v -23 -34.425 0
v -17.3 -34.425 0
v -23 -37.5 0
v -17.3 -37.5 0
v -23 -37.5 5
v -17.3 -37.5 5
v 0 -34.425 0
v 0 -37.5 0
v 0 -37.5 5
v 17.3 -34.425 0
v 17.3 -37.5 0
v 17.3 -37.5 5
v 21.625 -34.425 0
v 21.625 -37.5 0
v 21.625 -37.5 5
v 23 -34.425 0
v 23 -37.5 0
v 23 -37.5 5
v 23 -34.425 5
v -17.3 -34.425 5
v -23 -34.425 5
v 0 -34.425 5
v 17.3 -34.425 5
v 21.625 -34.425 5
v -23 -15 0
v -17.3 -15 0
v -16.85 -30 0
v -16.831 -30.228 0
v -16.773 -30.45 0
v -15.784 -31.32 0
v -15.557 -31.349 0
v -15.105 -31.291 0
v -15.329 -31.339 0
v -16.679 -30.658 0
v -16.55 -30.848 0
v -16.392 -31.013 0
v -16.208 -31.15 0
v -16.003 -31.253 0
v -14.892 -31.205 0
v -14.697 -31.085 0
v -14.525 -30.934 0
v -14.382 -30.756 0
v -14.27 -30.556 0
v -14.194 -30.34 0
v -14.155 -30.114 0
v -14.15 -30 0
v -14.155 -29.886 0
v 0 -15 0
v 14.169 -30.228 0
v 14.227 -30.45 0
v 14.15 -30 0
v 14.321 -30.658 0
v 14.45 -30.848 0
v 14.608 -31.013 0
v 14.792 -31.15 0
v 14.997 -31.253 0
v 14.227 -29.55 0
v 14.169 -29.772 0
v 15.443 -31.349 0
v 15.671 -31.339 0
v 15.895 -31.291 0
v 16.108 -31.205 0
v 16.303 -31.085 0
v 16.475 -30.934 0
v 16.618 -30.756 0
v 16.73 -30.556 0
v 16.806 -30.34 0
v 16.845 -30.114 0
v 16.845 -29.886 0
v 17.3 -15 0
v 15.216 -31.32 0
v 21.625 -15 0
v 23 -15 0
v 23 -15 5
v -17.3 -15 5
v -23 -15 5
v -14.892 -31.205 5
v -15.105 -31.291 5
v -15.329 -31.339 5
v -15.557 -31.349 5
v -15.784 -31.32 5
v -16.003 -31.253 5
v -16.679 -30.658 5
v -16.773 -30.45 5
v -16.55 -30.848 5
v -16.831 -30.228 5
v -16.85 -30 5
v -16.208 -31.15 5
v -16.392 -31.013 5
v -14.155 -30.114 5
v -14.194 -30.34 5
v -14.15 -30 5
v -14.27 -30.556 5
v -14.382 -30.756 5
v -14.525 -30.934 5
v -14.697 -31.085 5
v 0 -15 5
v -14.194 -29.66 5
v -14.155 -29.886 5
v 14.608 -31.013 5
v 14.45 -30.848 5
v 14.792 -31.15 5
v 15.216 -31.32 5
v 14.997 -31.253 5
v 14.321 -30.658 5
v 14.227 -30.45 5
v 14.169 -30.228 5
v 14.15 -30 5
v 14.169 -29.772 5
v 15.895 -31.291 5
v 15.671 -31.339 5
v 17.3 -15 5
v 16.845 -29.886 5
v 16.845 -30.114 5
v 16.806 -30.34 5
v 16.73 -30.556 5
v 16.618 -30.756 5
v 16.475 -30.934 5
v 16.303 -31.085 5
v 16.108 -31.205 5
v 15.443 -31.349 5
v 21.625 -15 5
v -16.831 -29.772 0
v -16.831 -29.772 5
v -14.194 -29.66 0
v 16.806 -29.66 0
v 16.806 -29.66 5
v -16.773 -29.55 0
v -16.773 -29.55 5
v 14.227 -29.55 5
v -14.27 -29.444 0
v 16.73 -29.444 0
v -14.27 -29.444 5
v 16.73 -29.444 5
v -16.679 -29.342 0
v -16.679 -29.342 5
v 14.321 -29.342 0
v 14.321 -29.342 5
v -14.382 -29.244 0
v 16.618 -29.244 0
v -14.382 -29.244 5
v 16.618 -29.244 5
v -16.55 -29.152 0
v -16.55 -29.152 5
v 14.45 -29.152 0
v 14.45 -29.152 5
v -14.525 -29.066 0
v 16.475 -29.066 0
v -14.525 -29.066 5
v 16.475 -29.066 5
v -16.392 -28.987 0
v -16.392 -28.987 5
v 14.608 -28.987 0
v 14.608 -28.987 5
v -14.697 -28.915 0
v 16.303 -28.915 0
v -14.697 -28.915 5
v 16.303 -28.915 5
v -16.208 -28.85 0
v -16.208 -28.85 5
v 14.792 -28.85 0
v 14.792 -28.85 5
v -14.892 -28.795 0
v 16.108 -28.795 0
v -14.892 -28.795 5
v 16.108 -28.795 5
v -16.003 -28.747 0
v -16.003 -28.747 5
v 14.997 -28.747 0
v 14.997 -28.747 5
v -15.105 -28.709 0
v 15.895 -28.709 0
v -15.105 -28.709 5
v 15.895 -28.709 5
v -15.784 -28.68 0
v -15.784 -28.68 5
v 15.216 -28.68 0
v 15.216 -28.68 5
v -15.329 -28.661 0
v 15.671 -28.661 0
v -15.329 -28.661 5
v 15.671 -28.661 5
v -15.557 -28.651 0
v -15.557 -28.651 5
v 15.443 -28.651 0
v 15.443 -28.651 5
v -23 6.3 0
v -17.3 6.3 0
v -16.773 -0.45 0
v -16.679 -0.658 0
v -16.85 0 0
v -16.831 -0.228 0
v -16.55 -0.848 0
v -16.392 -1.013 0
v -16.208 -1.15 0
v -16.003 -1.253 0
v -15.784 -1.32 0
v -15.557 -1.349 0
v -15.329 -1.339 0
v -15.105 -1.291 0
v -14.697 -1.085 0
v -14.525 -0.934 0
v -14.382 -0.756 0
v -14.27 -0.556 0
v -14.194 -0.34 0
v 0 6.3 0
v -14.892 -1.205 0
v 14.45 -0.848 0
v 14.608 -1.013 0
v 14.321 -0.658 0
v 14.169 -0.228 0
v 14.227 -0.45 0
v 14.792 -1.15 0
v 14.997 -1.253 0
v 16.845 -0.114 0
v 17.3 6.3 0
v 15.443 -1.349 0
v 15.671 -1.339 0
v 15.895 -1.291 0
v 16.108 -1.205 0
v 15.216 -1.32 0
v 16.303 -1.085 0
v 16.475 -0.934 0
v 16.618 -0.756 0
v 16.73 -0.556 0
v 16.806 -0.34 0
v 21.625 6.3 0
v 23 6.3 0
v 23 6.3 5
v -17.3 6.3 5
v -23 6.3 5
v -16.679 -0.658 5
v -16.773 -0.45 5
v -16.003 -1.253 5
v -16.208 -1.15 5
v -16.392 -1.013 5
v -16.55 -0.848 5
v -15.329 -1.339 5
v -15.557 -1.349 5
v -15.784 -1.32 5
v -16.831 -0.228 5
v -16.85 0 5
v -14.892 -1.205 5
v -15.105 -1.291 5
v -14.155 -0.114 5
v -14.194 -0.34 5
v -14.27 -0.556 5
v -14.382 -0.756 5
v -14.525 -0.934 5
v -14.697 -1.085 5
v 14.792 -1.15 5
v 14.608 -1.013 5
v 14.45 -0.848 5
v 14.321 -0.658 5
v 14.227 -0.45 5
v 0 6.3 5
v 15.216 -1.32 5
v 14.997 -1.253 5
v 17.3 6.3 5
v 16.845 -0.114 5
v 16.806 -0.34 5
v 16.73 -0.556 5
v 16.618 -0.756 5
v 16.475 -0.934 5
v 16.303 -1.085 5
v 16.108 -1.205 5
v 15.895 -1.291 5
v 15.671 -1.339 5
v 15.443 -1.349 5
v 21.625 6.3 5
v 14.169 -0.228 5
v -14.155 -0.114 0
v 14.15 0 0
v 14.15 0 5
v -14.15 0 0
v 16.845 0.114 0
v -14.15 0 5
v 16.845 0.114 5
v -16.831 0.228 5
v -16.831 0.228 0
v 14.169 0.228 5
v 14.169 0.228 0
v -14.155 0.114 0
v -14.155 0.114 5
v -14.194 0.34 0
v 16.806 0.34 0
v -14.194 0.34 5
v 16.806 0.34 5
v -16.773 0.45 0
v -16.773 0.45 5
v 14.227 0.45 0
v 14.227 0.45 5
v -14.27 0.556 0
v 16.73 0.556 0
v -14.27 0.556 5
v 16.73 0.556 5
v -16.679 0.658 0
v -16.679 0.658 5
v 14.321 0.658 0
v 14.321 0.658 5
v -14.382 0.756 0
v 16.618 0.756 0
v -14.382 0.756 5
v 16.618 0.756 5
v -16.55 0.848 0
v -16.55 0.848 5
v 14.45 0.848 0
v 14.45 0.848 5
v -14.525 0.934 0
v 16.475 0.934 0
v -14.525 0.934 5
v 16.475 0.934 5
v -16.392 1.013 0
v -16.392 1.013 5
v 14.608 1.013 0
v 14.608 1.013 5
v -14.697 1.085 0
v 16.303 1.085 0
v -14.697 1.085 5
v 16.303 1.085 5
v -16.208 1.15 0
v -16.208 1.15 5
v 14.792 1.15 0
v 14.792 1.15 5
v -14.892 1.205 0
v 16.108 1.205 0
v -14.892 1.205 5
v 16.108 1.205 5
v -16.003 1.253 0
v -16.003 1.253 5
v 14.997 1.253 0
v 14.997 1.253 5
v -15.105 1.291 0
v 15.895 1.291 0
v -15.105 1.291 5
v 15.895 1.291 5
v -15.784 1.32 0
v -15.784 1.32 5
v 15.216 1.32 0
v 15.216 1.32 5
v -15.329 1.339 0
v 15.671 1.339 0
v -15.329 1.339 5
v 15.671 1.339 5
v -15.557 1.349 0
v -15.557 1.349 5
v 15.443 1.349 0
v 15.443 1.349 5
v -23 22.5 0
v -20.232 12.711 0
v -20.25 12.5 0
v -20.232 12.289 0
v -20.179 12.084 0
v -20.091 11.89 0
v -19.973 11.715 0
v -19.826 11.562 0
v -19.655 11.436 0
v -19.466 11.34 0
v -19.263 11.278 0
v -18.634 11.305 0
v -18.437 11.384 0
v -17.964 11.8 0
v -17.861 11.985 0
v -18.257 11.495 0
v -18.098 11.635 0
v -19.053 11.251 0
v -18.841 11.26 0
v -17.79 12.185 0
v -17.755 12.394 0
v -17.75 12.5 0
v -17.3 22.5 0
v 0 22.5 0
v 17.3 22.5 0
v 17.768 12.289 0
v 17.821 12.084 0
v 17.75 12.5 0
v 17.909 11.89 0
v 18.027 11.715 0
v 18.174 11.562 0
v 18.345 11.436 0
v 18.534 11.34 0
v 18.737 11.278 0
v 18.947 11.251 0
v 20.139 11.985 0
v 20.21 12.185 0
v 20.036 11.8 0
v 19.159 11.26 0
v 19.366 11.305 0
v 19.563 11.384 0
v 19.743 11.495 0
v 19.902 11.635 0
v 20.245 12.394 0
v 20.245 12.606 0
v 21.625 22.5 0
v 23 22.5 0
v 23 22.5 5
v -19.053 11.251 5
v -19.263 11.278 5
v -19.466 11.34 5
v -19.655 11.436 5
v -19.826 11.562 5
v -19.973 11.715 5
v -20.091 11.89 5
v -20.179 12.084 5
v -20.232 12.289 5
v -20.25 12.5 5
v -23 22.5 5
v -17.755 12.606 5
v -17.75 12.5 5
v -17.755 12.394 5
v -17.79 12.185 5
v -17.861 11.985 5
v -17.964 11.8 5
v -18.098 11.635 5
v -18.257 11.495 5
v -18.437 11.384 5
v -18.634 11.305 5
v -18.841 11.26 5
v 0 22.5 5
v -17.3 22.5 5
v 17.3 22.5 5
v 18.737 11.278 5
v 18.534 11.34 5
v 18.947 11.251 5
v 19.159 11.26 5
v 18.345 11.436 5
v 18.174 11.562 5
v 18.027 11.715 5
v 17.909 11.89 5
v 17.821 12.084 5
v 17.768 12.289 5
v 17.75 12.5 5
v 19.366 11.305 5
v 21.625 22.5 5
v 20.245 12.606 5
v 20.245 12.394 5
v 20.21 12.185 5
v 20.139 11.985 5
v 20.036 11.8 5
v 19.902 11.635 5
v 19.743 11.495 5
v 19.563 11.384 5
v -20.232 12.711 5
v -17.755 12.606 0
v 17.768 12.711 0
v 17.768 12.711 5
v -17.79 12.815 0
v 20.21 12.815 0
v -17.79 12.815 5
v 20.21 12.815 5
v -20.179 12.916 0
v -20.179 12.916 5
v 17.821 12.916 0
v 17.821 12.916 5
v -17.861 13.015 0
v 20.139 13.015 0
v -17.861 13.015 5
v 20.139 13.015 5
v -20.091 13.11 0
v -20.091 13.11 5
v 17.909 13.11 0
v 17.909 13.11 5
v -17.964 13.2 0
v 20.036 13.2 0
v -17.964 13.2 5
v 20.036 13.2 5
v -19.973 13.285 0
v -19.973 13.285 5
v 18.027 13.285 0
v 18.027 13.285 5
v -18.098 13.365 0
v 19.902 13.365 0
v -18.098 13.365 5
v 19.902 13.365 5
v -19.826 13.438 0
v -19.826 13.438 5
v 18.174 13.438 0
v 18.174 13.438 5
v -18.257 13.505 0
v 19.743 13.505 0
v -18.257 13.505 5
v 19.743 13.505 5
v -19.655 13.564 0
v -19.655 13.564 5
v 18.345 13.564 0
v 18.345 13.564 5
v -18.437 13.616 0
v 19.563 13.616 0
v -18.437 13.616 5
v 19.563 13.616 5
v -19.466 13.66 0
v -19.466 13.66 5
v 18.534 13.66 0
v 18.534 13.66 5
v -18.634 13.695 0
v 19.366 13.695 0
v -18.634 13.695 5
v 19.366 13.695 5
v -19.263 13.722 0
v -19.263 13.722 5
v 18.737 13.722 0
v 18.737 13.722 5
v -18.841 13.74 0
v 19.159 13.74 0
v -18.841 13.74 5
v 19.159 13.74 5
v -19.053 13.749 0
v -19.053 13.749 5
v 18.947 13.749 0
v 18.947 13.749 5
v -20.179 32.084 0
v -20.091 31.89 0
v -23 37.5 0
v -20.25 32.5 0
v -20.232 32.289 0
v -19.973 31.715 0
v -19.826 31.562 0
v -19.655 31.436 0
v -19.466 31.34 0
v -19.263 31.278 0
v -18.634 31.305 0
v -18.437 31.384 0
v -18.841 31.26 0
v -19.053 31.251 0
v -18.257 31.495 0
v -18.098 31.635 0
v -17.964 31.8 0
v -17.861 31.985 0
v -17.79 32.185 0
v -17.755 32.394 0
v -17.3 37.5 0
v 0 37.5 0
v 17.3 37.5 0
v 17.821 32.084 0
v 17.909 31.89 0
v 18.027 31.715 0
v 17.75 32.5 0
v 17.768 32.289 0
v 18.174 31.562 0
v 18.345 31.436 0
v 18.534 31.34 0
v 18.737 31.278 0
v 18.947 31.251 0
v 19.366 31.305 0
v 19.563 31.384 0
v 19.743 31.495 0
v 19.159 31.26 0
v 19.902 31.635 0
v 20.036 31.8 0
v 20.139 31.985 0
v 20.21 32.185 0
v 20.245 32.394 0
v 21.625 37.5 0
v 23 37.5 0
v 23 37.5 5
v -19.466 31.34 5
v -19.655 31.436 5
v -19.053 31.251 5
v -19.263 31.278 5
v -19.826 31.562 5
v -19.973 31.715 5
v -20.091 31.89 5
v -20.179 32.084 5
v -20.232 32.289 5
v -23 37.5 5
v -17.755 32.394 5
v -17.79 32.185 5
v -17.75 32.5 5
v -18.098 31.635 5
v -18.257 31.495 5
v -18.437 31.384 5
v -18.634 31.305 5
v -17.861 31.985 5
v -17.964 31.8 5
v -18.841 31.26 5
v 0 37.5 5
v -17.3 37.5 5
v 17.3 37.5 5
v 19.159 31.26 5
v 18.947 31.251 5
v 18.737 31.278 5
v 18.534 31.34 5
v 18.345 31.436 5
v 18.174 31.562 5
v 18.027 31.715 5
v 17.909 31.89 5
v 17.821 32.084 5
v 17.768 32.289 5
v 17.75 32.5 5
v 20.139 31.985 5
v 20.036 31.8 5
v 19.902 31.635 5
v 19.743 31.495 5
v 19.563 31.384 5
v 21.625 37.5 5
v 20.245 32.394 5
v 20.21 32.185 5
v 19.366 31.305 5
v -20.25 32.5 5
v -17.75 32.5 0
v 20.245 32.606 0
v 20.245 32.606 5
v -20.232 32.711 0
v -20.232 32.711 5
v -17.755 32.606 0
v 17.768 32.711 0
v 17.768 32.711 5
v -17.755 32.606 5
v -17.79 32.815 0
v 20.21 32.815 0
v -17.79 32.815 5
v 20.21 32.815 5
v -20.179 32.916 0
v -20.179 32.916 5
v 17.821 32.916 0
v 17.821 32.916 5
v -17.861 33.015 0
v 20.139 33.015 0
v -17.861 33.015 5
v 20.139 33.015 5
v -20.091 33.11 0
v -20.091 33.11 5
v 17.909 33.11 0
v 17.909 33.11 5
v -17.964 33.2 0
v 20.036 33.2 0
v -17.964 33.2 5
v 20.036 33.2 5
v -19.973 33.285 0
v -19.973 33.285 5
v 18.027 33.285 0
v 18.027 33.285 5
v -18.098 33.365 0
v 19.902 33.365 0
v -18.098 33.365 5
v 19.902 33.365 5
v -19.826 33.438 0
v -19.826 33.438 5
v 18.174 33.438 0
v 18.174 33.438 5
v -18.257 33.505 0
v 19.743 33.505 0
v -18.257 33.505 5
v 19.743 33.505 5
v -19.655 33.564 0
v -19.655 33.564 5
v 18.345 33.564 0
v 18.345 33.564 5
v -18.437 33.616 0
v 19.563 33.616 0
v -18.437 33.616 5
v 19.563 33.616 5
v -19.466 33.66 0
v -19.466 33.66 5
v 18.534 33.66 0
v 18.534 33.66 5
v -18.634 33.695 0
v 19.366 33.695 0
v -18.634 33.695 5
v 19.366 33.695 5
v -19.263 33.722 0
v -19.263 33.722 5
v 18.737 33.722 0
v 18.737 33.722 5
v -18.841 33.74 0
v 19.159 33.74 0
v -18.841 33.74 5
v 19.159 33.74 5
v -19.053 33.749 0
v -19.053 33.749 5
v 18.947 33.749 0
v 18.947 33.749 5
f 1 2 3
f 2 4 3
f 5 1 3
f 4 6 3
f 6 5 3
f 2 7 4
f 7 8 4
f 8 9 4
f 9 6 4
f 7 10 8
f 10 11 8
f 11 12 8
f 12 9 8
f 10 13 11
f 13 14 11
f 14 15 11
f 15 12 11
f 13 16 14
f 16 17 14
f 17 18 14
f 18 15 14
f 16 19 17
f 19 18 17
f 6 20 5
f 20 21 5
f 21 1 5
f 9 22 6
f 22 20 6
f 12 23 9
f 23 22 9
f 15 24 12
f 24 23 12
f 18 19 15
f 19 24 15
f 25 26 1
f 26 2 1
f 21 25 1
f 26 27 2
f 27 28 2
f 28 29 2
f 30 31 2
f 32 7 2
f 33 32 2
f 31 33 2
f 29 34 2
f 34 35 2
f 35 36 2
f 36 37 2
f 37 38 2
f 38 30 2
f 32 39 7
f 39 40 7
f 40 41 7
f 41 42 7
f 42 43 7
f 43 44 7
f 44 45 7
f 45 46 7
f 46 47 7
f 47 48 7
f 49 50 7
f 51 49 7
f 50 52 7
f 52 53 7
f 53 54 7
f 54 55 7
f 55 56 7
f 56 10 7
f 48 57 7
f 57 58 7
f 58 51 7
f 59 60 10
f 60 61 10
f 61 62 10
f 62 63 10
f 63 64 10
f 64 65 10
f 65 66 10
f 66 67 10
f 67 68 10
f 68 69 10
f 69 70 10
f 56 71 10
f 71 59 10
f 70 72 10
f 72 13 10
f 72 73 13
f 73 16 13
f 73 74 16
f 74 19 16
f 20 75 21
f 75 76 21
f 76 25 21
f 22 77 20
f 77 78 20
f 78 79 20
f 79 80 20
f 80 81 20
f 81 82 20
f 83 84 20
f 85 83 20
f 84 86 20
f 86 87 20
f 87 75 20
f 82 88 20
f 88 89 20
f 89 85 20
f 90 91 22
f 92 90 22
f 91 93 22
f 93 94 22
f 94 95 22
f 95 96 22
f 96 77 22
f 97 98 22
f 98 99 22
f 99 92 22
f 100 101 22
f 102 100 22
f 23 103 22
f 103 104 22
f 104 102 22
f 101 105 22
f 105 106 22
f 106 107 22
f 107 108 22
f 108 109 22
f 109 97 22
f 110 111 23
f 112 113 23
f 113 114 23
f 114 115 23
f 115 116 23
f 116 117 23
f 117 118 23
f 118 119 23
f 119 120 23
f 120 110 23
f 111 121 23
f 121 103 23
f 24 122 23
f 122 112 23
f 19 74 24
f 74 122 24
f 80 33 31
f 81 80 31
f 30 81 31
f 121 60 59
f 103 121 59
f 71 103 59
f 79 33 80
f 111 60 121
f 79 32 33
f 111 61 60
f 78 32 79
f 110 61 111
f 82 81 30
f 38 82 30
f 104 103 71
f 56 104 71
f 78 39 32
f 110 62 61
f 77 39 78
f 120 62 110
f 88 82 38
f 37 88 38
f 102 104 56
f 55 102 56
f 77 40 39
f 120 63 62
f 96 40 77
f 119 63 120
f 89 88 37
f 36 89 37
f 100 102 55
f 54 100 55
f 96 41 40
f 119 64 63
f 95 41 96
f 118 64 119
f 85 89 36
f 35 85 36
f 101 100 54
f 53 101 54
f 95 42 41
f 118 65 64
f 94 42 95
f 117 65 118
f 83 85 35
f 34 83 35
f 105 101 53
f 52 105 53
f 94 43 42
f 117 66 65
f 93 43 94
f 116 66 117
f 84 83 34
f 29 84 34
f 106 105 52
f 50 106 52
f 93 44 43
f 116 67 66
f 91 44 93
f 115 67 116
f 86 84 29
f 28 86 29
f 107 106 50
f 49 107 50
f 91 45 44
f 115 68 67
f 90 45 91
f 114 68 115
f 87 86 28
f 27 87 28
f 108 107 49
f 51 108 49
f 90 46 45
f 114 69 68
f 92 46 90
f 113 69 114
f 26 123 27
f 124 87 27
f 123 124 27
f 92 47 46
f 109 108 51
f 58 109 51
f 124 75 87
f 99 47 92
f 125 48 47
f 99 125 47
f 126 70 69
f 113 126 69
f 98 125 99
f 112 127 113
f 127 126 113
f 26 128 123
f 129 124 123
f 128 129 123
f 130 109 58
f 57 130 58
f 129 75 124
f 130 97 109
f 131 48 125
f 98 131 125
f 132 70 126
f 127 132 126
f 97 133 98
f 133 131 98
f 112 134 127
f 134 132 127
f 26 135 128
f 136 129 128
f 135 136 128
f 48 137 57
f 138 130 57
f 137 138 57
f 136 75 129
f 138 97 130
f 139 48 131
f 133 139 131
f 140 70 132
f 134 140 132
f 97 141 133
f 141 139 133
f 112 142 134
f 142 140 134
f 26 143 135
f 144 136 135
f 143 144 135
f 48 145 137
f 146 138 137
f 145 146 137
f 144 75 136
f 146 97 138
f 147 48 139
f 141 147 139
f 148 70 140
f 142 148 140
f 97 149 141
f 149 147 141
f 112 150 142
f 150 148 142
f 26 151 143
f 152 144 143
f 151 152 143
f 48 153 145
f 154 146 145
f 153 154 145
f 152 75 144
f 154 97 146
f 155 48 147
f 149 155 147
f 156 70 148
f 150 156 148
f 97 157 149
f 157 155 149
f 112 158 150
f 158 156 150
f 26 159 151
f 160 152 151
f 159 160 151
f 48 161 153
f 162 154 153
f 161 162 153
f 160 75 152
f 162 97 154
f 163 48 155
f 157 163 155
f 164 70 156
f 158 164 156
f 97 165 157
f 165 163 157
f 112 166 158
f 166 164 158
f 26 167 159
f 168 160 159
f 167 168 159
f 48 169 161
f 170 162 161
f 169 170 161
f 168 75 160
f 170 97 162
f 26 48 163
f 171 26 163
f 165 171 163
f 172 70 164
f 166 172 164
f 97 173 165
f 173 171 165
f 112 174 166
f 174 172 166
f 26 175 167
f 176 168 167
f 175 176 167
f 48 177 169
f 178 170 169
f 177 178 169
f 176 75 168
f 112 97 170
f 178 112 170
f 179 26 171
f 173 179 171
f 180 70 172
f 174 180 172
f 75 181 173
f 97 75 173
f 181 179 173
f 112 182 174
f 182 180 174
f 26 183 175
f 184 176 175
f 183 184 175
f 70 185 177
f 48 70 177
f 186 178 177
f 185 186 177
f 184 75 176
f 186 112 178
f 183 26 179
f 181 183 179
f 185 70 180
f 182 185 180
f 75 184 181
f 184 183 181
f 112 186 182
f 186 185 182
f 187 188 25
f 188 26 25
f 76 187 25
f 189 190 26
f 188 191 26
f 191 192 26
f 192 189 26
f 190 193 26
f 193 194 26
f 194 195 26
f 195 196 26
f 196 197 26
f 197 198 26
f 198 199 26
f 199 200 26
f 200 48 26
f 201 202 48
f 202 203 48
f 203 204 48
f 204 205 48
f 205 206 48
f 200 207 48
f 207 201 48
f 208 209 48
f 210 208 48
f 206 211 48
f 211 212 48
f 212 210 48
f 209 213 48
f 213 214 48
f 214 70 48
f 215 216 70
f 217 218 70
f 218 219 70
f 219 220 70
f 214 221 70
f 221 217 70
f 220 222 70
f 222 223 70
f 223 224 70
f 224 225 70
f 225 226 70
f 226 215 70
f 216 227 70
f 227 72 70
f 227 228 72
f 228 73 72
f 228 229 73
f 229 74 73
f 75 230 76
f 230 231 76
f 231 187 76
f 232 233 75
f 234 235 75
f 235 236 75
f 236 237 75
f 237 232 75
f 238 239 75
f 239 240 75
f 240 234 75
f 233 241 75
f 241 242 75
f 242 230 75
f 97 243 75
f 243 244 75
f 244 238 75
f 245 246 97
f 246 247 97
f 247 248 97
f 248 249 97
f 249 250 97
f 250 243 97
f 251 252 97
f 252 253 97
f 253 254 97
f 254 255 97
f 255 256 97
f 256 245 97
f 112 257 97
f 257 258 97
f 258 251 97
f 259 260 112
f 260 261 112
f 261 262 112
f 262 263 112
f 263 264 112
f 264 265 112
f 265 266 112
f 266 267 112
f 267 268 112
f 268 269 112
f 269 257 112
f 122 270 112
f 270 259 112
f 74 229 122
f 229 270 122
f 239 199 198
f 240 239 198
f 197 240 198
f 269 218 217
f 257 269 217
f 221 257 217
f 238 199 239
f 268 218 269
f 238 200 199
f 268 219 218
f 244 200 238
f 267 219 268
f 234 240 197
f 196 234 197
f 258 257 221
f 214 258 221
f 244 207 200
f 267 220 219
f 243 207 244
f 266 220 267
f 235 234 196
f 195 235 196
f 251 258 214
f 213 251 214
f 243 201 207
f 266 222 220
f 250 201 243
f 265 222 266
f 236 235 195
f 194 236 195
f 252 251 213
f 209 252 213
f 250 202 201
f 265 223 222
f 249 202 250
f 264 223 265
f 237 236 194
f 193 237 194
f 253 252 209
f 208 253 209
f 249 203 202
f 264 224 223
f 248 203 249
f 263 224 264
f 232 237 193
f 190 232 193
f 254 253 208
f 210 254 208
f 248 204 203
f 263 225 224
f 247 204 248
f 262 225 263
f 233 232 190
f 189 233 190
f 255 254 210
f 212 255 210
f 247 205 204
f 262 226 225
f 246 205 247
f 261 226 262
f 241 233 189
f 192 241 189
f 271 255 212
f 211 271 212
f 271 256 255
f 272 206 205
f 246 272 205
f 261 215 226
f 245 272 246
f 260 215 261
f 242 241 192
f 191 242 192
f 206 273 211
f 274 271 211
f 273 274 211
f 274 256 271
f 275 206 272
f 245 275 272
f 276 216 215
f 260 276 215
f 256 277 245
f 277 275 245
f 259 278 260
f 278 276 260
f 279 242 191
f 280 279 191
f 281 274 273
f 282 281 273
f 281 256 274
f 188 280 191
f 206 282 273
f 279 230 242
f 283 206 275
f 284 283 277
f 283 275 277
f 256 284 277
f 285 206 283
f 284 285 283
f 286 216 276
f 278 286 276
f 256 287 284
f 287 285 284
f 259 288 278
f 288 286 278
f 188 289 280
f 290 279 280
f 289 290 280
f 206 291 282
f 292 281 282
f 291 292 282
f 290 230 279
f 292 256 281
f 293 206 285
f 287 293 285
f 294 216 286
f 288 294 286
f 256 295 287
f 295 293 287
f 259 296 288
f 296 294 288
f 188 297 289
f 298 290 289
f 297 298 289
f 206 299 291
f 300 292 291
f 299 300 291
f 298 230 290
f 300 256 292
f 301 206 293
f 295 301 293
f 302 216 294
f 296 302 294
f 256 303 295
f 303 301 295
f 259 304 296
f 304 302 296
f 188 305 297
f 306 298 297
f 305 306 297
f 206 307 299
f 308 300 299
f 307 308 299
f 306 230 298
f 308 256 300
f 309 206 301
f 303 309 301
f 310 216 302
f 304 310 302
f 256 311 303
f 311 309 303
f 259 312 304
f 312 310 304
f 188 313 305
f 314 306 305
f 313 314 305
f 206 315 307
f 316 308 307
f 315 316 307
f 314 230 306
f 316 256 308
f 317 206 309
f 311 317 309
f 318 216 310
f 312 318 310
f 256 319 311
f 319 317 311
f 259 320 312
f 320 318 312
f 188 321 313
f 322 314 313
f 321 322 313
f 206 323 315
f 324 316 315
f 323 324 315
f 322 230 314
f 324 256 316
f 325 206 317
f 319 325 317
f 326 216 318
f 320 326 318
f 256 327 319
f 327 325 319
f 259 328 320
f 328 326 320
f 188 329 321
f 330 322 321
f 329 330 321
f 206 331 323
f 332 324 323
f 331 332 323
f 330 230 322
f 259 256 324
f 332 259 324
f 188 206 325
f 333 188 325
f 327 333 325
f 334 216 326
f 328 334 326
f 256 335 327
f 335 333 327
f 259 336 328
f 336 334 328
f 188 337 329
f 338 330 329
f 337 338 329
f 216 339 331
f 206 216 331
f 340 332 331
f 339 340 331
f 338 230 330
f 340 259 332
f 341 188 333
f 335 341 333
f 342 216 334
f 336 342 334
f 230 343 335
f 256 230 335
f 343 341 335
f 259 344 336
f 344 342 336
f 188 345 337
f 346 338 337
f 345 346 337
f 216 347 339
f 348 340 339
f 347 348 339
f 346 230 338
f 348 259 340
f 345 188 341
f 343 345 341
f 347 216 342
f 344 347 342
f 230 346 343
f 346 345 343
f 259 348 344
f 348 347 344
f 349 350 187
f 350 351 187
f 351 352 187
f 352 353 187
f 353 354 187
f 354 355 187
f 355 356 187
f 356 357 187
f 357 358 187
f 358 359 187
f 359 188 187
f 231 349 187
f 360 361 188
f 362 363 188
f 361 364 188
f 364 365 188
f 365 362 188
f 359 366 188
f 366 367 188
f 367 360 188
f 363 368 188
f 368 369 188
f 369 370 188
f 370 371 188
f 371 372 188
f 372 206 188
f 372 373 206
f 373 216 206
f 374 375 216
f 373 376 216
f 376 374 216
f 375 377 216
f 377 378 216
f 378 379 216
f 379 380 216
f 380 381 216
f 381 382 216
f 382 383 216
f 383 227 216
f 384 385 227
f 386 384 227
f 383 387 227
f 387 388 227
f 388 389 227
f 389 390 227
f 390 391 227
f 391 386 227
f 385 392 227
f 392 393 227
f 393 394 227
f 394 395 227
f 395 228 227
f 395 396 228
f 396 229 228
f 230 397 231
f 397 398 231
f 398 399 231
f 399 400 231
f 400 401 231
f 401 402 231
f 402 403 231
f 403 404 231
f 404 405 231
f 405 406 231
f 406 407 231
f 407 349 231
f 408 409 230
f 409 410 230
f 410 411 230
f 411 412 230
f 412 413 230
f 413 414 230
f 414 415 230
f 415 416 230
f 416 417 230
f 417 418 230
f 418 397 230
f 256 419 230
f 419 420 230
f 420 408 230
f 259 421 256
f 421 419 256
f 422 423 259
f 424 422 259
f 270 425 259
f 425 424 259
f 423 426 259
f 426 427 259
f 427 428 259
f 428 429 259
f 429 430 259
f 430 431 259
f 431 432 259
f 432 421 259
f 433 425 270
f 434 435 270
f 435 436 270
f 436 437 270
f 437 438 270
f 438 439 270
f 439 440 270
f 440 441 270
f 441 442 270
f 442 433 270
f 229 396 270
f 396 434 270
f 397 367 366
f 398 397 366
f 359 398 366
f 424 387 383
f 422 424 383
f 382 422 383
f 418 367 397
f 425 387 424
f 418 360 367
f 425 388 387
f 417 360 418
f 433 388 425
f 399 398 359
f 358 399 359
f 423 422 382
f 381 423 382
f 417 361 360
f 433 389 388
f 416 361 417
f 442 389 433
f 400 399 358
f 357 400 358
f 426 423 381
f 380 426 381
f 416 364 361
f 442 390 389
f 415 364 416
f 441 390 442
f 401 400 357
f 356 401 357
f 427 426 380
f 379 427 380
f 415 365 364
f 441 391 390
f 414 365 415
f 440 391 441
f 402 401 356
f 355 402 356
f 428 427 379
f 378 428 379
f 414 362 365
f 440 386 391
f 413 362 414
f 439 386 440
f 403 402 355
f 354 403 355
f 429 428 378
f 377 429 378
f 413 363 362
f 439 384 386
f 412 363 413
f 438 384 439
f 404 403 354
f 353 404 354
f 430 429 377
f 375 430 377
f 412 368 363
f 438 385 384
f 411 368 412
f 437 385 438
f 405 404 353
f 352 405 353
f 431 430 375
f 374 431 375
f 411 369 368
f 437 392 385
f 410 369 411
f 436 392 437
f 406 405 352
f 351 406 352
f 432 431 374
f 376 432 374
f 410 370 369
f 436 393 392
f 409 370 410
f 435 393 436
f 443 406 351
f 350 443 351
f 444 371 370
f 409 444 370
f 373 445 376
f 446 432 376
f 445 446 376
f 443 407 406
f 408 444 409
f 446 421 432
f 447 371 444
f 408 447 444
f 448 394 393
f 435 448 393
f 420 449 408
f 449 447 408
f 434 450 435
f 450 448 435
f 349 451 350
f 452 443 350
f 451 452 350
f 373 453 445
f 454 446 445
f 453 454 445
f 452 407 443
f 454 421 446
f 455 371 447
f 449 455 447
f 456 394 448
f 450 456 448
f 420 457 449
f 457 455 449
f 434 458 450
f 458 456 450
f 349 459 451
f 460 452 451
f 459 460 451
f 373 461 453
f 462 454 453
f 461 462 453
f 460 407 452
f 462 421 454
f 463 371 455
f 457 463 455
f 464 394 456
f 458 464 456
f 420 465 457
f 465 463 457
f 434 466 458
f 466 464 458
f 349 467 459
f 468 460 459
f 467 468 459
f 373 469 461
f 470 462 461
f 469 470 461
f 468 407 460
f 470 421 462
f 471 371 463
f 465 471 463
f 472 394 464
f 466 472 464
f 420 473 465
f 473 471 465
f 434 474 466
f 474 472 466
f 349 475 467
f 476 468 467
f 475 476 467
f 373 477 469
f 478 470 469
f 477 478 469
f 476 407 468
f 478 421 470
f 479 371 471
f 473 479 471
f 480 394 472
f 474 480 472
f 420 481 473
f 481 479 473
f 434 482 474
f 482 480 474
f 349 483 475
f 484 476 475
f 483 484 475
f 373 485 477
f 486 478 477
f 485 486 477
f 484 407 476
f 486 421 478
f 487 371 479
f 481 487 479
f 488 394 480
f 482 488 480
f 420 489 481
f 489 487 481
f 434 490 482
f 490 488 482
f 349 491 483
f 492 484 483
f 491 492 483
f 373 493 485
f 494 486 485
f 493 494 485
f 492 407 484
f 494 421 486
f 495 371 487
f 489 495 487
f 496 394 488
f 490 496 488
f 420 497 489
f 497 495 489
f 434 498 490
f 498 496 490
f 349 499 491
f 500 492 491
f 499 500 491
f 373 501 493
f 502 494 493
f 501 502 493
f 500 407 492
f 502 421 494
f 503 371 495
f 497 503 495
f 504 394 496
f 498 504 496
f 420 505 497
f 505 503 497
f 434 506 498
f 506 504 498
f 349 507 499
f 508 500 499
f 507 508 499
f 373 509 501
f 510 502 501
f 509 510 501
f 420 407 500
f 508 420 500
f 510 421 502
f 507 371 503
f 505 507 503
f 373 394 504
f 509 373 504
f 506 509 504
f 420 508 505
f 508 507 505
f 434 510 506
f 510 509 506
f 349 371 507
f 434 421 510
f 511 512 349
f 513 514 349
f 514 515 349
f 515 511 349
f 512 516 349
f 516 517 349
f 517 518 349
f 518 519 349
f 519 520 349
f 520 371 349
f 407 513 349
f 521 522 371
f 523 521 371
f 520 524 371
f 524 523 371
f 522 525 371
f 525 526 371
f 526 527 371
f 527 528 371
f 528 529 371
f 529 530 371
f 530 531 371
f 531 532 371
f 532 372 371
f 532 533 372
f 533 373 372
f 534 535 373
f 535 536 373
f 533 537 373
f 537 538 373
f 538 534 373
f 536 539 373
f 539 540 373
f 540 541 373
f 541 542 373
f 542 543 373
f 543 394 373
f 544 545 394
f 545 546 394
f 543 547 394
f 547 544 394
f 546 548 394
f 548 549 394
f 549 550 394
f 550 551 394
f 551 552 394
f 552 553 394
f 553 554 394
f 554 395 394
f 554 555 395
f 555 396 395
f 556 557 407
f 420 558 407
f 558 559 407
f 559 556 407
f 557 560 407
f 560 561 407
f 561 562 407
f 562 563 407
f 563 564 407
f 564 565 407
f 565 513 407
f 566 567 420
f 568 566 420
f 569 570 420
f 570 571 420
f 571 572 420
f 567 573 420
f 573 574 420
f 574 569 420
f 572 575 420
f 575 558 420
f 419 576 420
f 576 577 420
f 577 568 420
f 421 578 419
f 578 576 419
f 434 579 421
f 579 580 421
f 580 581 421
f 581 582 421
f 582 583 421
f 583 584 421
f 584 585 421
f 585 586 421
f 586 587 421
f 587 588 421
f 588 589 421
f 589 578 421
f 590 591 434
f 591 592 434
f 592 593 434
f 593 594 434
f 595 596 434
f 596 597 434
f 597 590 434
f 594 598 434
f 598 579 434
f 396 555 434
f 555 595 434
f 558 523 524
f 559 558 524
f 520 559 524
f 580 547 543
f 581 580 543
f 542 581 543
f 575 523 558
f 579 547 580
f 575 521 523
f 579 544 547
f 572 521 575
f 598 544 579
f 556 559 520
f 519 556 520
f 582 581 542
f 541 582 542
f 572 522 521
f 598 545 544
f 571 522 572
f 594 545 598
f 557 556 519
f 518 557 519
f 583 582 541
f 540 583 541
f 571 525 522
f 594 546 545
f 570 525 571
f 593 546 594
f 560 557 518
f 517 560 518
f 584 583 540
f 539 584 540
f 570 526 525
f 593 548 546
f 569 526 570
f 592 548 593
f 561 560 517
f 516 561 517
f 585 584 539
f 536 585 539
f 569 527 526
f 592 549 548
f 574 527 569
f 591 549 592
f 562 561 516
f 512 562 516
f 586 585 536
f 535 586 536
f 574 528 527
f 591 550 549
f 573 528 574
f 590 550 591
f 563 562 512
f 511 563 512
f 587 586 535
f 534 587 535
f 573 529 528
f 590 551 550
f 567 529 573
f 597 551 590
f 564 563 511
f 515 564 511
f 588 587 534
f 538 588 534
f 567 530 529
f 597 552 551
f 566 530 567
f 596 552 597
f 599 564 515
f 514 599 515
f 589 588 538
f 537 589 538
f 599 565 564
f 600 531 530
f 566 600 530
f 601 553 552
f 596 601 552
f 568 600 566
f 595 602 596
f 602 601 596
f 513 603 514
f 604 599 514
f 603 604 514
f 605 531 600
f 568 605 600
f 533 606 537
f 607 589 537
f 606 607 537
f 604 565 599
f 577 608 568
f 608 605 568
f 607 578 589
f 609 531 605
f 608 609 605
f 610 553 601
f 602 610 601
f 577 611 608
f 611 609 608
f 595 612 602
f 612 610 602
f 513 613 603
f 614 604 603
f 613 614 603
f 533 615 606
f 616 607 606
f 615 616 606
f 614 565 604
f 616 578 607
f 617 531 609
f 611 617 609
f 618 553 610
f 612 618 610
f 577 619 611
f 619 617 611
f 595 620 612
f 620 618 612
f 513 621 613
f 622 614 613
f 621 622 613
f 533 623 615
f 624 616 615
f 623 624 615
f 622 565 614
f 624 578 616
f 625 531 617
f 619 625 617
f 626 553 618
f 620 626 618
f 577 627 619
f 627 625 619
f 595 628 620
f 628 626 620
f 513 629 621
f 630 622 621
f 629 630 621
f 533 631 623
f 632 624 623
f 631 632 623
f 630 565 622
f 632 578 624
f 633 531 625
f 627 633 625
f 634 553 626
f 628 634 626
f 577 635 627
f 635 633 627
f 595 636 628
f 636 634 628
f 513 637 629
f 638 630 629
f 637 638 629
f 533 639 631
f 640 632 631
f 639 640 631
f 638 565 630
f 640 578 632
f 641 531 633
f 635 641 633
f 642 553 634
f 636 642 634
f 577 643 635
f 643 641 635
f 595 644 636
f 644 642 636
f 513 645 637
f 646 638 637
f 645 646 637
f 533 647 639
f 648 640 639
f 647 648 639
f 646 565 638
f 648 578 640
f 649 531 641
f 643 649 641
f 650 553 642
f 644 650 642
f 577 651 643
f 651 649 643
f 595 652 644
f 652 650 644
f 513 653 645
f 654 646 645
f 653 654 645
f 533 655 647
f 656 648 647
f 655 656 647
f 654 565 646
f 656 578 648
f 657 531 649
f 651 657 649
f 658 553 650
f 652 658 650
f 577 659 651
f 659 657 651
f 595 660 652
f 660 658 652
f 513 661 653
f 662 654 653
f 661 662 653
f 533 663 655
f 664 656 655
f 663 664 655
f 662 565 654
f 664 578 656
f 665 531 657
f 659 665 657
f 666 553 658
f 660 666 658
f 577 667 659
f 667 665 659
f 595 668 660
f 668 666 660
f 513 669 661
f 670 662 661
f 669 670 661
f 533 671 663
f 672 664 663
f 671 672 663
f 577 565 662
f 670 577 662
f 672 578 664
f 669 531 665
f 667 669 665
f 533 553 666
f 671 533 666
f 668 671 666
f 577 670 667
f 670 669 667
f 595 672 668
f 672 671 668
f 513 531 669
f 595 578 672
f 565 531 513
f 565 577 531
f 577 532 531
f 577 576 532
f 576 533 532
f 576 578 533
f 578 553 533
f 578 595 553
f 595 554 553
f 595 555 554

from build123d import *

# Parameters (mm, degrees)
SKETCH_1_W      = 46
SKETCH_1_H      = 75
SKETCH_1_R      = 1.25
SKETCH_1_R_2    = 1.35
EXTRUDE_1_DEPTH = 5


with BuildPart() as part:
    # 草圖1 → 填料-伸長1 (new body)
    with BuildSketch(Plane.XY):
        Rectangle(SKETCH_1_W, SKETCH_1_H)
        with Locations((-19, 32.5)):
            Circle(SKETCH_1_R, mode=Mode.SUBTRACT)
        with Locations((-15.5, -30)):
            Circle(SKETCH_1_R_2, mode=Mode.SUBTRACT)
        with Locations((-15.5, 0)):
            Circle(SKETCH_1_R_2, mode=Mode.SUBTRACT)
        with Locations((15.5, -30)):
            Circle(SKETCH_1_R_2, mode=Mode.SUBTRACT)
        with Locations((15.5, 0)):
            Circle(SKETCH_1_R_2, mode=Mode.SUBTRACT)
        with Locations((19, 32.5)):
            Circle(SKETCH_1_R, mode=Mode.SUBTRACT)
        with Locations((-19, 12.5)):
            Circle(SKETCH_1_R, mode=Mode.SUBTRACT)
        with Locations((19, 12.5)):
            Circle(SKETCH_1_R, mode=Mode.SUBTRACT)
    extrude(amount=EXTRUDE_1_DEPTH)


solid = part.part
